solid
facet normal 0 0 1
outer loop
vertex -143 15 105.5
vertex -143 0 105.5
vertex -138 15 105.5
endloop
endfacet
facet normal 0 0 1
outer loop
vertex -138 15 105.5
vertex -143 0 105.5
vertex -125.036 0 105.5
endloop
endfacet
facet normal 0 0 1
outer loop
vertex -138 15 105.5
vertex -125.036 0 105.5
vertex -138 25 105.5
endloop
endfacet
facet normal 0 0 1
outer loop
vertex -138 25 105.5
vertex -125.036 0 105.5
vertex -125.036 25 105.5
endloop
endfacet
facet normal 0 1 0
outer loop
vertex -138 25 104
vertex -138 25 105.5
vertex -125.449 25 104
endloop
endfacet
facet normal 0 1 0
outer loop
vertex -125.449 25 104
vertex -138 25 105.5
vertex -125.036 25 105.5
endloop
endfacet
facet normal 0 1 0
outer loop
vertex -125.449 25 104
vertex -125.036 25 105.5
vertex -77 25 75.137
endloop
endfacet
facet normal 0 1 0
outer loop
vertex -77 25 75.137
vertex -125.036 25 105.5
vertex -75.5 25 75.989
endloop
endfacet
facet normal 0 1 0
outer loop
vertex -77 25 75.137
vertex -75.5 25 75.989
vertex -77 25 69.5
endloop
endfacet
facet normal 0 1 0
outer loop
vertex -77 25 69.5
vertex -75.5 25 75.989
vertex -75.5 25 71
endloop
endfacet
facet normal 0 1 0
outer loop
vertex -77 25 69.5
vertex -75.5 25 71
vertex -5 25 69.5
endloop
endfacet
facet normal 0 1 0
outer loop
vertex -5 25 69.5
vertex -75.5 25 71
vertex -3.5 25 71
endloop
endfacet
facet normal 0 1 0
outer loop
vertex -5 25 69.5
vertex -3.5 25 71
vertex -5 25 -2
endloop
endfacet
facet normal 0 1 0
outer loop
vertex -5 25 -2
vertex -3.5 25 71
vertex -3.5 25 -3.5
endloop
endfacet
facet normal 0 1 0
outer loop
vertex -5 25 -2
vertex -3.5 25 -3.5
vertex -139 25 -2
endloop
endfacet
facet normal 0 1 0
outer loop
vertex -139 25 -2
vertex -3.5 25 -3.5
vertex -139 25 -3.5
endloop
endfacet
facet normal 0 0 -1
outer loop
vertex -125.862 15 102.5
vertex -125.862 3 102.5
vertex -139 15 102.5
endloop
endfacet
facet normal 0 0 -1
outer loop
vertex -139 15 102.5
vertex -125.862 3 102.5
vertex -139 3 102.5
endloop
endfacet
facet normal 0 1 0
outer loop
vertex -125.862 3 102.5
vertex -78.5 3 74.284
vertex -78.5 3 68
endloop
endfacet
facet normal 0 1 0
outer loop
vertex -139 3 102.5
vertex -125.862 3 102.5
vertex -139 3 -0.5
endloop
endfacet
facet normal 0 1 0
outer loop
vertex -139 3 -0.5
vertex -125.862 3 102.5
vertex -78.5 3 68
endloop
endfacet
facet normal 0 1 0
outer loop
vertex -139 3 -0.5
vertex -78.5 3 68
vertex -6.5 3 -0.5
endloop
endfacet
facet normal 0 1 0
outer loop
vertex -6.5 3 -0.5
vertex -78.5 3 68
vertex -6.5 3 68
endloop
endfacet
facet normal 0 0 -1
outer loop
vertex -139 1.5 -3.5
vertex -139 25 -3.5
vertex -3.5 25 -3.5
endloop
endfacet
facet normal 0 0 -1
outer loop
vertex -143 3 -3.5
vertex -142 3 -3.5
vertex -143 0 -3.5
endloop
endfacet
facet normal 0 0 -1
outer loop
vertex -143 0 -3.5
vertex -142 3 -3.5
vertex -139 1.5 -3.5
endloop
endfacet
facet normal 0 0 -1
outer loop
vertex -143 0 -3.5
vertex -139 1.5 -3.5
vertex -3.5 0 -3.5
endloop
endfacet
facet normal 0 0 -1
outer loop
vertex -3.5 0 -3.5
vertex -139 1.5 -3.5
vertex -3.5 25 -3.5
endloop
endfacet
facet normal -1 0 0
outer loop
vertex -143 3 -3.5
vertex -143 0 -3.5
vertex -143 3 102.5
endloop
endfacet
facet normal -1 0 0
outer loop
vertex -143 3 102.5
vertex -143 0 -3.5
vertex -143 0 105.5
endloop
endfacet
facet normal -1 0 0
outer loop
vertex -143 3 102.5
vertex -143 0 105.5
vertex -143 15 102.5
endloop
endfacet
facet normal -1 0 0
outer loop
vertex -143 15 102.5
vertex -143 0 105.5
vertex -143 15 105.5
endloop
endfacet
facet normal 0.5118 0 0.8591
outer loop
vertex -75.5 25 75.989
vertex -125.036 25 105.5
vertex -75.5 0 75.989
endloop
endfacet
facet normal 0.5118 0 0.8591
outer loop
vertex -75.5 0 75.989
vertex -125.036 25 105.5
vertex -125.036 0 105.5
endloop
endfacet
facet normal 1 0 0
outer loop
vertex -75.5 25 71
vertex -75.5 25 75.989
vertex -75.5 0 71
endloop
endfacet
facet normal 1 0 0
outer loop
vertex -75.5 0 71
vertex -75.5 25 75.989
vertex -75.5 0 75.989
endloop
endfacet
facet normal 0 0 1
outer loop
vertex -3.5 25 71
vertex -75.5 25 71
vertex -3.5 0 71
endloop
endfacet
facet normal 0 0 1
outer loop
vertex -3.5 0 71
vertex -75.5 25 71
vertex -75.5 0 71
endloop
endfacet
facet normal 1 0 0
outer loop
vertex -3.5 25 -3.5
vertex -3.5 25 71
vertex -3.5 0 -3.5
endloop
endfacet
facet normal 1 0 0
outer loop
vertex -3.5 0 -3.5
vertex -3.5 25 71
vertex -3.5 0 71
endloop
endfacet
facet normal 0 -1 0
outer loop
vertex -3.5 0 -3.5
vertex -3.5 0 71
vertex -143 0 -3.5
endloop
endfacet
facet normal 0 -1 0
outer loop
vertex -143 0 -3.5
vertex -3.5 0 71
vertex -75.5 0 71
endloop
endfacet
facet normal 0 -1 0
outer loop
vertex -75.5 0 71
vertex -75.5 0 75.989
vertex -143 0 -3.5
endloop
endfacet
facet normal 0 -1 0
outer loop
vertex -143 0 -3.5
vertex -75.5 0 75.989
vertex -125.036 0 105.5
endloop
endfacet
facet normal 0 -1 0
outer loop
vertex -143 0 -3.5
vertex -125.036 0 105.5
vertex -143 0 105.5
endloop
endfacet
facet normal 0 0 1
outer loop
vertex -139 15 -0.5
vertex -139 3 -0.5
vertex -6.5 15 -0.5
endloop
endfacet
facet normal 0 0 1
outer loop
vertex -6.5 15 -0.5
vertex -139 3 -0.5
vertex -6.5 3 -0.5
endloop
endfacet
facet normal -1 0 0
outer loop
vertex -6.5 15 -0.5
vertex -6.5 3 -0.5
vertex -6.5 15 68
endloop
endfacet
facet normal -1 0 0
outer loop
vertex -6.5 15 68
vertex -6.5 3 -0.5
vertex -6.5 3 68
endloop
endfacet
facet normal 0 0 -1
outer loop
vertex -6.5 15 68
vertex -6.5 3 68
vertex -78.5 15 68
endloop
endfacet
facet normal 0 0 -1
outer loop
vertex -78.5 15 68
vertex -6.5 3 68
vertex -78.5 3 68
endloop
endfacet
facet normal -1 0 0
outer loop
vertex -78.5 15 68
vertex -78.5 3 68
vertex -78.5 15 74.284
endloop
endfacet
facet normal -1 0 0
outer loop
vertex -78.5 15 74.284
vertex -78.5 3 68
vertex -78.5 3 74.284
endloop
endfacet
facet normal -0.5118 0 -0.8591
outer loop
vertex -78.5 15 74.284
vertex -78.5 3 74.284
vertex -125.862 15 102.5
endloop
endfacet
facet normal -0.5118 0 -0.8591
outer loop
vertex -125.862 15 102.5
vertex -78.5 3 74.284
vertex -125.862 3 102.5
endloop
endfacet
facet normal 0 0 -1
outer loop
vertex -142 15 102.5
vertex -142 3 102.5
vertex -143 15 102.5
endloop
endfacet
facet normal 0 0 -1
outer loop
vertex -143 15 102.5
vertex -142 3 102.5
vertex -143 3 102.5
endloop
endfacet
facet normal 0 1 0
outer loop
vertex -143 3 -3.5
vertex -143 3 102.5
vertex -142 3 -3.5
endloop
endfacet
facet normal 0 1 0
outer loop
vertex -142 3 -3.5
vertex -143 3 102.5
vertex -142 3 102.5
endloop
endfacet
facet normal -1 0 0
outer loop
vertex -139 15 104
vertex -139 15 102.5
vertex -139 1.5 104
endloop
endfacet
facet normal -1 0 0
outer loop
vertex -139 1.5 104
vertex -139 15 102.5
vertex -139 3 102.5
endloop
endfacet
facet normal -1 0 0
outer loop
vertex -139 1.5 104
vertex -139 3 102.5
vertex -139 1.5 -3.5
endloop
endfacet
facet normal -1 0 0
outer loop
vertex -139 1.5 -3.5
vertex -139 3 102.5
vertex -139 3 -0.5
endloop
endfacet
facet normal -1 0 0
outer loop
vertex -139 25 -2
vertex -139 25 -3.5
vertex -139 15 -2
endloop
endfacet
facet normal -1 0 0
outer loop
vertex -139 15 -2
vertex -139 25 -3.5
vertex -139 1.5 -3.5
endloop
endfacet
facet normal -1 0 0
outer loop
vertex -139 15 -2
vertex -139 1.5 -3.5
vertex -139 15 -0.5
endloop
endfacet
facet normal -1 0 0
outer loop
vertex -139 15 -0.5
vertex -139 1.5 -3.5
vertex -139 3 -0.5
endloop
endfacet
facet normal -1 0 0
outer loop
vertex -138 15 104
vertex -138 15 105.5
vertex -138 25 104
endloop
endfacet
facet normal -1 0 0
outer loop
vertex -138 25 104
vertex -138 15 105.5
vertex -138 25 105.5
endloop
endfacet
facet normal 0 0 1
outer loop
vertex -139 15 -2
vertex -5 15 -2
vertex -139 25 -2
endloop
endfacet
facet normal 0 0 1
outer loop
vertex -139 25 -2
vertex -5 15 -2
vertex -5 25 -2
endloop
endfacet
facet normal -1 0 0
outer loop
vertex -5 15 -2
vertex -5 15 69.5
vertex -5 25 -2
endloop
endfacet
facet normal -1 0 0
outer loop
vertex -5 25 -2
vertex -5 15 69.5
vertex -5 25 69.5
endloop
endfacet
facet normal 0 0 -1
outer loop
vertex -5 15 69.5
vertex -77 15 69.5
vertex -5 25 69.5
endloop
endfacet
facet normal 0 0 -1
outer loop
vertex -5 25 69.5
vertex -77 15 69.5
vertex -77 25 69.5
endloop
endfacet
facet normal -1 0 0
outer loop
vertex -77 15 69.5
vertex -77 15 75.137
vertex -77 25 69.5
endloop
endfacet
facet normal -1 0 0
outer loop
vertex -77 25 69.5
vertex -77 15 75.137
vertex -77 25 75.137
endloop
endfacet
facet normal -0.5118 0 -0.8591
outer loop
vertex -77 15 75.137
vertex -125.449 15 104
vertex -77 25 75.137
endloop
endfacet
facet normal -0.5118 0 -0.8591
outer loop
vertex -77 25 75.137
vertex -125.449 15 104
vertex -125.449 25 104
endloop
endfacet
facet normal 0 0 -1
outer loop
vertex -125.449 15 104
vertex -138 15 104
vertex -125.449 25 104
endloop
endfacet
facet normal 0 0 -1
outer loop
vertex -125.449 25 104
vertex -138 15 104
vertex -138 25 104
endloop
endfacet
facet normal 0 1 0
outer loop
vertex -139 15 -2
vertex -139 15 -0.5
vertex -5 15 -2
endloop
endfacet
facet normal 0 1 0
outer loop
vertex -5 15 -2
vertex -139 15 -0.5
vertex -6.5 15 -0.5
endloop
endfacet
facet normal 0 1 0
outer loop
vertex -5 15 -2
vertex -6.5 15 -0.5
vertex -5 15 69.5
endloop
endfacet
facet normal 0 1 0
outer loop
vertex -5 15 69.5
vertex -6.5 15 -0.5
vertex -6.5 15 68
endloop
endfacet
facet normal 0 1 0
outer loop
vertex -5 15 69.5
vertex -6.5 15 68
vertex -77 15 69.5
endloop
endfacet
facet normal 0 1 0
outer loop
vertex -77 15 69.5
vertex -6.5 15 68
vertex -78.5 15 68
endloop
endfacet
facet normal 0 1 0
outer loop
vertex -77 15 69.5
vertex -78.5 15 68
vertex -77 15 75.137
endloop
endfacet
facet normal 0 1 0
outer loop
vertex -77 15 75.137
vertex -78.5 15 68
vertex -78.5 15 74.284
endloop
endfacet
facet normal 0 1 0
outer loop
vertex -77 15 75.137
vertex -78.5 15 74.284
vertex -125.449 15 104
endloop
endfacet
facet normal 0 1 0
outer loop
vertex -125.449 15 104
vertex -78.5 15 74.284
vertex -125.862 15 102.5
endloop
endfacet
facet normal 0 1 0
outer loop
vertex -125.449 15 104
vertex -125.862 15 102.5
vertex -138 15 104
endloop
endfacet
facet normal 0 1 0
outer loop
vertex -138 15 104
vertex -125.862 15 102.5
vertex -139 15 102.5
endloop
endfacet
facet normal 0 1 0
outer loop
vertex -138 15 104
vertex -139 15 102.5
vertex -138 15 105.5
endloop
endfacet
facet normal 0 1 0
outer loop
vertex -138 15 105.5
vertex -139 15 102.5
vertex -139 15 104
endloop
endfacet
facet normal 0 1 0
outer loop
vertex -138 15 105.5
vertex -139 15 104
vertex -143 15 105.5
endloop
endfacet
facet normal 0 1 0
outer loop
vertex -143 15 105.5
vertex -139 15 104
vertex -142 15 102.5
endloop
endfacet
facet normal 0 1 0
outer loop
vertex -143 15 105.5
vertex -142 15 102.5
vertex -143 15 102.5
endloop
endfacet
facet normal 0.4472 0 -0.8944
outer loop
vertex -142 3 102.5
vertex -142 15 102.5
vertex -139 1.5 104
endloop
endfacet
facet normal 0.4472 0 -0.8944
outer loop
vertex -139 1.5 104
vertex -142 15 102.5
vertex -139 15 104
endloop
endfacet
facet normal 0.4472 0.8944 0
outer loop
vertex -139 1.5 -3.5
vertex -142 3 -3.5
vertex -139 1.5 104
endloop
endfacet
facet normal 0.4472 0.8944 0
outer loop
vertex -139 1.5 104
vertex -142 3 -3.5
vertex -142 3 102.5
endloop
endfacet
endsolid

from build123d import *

# Parameters (mm, degrees)
BOSS_EXTRUDE1_DEPTH = 25
CUT_EXTRUDE1_DEPTH  = 22
SKETCH7_W           = 4
SKETCH7_H           = 106
CUT_EXTRUDE2_DEPTH  = 22
SKETCH8_W           = 3
SKETCH8_H           = 106
CUT_EXTRUDE3_DEPTH  = 1.5
SKETCH9_W           = 3
SKETCH9_H           = 23.5
CUT_EXTRUDE4_DEPTH  = 1.5
CUT_EXTRUDE5_DEPTH  = 10
BOSS_EXTRUDE2_DEPTH = 13.5
BOSS_EXTRUDE3_DEPTH = 107.5


with BuildPart() as part:
    # PCB → Boss-Extrude1 (new body)
    with BuildSketch(Plane(origin=(0, 0, 0), x_dir=(1, 0, 0), z_dir=(0, 1, 0))):
        Polygon((-3.5, 3.5), (-3.5, -71), (-75.5, -71), (-75.5, -75.988917258), (-125.036460317, -105.5), (-142, -105.5), (-143, -105.5), (-143, 3.5), (-142, 3.5), align=None)
    extrude(amount=BOSS_EXTRUDE1_DEPTH)

    # Sketch4 → Cut-Extrude1 (cut)
    with BuildSketch(Plane(origin=(0, 25, 0), x_dir=(1, 0, 0), z_dir=(0, 1, 0))):
        Polygon((-6.5, 0.5), (-140, 0.5), (-140, -102.5), (-125.862351474, -102.5), (-78.5, -74.284131037), (-78.5, -68), (-6.5, -68), align=None)
    extrude(amount=-CUT_EXTRUDE1_DEPTH, mode=Mode.SUBTRACT)

    # Sketch7 → Cut-Extrude2 (cut)
    with BuildSketch(Plane(origin=(0, 25, 0), x_dir=(1, 0, 0), z_dir=(0, 1, 0))):
        with Locations((-141, -49.5)):
            Rectangle(SKETCH7_W, SKETCH7_H)
    extrude(amount=-CUT_EXTRUDE2_DEPTH, mode=Mode.SUBTRACT)

    # Sketch8 → Cut-Extrude3 (cut)
    with BuildSketch(Plane(origin=(0, 3, 0), x_dir=(1, 0, 0), z_dir=(0, 1, 0))):
        with Locations((-140.5, -49.5)):
            Rectangle(SKETCH8_W, SKETCH8_H)
    extrude(amount=-CUT_EXTRUDE3_DEPTH, mode=Mode.SUBTRACT)

    # Sketch9 → Cut-Extrude4 (cut)
    with BuildSketch(Plane(origin=(0, 0, 102.5), x_dir=(-1, 0, 0), z_dir=(0, 0, -1))):
        with Locations((140.5, 13.25)):
            Rectangle(SKETCH9_W, SKETCH9_H)
    extrude(amount=-CUT_EXTRUDE4_DEPTH, mode=Mode.SUBTRACT)

    # Sketch10 → Cut-Extrude5 (cut)
    with BuildSketch(Plane(origin=(0, 25, 0), x_dir=(1, 0, 0), z_dir=(0, 1, 0))):
        Polygon((-138, -105.5), (-143, -105.5), (-143, -102.5), (-142, -102.5), (-142, -104), (-139, -104), (-139, -102.5), (-125.862351474, -102.5), (-78.5, -74.284131037), (-78.5, -68), (-6.5, -68), (-6.5, 0.5), (-139, 0.5), (-139, 2), (-5, 2), (-5, -69.5), (-77, -69.5), (-77, -75.136524148), (-125.449405895, -104), (-138, -104), align=None)
    extrude(amount=-CUT_EXTRUDE5_DEPTH, mode=Mode.SUBTRACT)

    # Sketch11 → Boss-Extrude2 (add)
    with BuildSketch(Plane(origin=(0, 1.5, 0), x_dir=(1, 0, 0), z_dir=(0, 1, 0))):
        Polygon((-142, -102.5), (-139, -104), (-142, -104), align=None)
    extrude(amount=BOSS_EXTRUDE2_DEPTH)

    # Sketch12 → Boss-Extrude3 (add)
    with BuildSketch(Plane(origin=(0, 0, -3.5), x_dir=(-1, 0, 0), z_dir=(0, 0, -1))):
        Polygon((139, 1.5), (142, 3), (142, 1.5), align=None)
    extrude(amount=-BOSS_EXTRUDE3_DEPTH)


solid = part.part
